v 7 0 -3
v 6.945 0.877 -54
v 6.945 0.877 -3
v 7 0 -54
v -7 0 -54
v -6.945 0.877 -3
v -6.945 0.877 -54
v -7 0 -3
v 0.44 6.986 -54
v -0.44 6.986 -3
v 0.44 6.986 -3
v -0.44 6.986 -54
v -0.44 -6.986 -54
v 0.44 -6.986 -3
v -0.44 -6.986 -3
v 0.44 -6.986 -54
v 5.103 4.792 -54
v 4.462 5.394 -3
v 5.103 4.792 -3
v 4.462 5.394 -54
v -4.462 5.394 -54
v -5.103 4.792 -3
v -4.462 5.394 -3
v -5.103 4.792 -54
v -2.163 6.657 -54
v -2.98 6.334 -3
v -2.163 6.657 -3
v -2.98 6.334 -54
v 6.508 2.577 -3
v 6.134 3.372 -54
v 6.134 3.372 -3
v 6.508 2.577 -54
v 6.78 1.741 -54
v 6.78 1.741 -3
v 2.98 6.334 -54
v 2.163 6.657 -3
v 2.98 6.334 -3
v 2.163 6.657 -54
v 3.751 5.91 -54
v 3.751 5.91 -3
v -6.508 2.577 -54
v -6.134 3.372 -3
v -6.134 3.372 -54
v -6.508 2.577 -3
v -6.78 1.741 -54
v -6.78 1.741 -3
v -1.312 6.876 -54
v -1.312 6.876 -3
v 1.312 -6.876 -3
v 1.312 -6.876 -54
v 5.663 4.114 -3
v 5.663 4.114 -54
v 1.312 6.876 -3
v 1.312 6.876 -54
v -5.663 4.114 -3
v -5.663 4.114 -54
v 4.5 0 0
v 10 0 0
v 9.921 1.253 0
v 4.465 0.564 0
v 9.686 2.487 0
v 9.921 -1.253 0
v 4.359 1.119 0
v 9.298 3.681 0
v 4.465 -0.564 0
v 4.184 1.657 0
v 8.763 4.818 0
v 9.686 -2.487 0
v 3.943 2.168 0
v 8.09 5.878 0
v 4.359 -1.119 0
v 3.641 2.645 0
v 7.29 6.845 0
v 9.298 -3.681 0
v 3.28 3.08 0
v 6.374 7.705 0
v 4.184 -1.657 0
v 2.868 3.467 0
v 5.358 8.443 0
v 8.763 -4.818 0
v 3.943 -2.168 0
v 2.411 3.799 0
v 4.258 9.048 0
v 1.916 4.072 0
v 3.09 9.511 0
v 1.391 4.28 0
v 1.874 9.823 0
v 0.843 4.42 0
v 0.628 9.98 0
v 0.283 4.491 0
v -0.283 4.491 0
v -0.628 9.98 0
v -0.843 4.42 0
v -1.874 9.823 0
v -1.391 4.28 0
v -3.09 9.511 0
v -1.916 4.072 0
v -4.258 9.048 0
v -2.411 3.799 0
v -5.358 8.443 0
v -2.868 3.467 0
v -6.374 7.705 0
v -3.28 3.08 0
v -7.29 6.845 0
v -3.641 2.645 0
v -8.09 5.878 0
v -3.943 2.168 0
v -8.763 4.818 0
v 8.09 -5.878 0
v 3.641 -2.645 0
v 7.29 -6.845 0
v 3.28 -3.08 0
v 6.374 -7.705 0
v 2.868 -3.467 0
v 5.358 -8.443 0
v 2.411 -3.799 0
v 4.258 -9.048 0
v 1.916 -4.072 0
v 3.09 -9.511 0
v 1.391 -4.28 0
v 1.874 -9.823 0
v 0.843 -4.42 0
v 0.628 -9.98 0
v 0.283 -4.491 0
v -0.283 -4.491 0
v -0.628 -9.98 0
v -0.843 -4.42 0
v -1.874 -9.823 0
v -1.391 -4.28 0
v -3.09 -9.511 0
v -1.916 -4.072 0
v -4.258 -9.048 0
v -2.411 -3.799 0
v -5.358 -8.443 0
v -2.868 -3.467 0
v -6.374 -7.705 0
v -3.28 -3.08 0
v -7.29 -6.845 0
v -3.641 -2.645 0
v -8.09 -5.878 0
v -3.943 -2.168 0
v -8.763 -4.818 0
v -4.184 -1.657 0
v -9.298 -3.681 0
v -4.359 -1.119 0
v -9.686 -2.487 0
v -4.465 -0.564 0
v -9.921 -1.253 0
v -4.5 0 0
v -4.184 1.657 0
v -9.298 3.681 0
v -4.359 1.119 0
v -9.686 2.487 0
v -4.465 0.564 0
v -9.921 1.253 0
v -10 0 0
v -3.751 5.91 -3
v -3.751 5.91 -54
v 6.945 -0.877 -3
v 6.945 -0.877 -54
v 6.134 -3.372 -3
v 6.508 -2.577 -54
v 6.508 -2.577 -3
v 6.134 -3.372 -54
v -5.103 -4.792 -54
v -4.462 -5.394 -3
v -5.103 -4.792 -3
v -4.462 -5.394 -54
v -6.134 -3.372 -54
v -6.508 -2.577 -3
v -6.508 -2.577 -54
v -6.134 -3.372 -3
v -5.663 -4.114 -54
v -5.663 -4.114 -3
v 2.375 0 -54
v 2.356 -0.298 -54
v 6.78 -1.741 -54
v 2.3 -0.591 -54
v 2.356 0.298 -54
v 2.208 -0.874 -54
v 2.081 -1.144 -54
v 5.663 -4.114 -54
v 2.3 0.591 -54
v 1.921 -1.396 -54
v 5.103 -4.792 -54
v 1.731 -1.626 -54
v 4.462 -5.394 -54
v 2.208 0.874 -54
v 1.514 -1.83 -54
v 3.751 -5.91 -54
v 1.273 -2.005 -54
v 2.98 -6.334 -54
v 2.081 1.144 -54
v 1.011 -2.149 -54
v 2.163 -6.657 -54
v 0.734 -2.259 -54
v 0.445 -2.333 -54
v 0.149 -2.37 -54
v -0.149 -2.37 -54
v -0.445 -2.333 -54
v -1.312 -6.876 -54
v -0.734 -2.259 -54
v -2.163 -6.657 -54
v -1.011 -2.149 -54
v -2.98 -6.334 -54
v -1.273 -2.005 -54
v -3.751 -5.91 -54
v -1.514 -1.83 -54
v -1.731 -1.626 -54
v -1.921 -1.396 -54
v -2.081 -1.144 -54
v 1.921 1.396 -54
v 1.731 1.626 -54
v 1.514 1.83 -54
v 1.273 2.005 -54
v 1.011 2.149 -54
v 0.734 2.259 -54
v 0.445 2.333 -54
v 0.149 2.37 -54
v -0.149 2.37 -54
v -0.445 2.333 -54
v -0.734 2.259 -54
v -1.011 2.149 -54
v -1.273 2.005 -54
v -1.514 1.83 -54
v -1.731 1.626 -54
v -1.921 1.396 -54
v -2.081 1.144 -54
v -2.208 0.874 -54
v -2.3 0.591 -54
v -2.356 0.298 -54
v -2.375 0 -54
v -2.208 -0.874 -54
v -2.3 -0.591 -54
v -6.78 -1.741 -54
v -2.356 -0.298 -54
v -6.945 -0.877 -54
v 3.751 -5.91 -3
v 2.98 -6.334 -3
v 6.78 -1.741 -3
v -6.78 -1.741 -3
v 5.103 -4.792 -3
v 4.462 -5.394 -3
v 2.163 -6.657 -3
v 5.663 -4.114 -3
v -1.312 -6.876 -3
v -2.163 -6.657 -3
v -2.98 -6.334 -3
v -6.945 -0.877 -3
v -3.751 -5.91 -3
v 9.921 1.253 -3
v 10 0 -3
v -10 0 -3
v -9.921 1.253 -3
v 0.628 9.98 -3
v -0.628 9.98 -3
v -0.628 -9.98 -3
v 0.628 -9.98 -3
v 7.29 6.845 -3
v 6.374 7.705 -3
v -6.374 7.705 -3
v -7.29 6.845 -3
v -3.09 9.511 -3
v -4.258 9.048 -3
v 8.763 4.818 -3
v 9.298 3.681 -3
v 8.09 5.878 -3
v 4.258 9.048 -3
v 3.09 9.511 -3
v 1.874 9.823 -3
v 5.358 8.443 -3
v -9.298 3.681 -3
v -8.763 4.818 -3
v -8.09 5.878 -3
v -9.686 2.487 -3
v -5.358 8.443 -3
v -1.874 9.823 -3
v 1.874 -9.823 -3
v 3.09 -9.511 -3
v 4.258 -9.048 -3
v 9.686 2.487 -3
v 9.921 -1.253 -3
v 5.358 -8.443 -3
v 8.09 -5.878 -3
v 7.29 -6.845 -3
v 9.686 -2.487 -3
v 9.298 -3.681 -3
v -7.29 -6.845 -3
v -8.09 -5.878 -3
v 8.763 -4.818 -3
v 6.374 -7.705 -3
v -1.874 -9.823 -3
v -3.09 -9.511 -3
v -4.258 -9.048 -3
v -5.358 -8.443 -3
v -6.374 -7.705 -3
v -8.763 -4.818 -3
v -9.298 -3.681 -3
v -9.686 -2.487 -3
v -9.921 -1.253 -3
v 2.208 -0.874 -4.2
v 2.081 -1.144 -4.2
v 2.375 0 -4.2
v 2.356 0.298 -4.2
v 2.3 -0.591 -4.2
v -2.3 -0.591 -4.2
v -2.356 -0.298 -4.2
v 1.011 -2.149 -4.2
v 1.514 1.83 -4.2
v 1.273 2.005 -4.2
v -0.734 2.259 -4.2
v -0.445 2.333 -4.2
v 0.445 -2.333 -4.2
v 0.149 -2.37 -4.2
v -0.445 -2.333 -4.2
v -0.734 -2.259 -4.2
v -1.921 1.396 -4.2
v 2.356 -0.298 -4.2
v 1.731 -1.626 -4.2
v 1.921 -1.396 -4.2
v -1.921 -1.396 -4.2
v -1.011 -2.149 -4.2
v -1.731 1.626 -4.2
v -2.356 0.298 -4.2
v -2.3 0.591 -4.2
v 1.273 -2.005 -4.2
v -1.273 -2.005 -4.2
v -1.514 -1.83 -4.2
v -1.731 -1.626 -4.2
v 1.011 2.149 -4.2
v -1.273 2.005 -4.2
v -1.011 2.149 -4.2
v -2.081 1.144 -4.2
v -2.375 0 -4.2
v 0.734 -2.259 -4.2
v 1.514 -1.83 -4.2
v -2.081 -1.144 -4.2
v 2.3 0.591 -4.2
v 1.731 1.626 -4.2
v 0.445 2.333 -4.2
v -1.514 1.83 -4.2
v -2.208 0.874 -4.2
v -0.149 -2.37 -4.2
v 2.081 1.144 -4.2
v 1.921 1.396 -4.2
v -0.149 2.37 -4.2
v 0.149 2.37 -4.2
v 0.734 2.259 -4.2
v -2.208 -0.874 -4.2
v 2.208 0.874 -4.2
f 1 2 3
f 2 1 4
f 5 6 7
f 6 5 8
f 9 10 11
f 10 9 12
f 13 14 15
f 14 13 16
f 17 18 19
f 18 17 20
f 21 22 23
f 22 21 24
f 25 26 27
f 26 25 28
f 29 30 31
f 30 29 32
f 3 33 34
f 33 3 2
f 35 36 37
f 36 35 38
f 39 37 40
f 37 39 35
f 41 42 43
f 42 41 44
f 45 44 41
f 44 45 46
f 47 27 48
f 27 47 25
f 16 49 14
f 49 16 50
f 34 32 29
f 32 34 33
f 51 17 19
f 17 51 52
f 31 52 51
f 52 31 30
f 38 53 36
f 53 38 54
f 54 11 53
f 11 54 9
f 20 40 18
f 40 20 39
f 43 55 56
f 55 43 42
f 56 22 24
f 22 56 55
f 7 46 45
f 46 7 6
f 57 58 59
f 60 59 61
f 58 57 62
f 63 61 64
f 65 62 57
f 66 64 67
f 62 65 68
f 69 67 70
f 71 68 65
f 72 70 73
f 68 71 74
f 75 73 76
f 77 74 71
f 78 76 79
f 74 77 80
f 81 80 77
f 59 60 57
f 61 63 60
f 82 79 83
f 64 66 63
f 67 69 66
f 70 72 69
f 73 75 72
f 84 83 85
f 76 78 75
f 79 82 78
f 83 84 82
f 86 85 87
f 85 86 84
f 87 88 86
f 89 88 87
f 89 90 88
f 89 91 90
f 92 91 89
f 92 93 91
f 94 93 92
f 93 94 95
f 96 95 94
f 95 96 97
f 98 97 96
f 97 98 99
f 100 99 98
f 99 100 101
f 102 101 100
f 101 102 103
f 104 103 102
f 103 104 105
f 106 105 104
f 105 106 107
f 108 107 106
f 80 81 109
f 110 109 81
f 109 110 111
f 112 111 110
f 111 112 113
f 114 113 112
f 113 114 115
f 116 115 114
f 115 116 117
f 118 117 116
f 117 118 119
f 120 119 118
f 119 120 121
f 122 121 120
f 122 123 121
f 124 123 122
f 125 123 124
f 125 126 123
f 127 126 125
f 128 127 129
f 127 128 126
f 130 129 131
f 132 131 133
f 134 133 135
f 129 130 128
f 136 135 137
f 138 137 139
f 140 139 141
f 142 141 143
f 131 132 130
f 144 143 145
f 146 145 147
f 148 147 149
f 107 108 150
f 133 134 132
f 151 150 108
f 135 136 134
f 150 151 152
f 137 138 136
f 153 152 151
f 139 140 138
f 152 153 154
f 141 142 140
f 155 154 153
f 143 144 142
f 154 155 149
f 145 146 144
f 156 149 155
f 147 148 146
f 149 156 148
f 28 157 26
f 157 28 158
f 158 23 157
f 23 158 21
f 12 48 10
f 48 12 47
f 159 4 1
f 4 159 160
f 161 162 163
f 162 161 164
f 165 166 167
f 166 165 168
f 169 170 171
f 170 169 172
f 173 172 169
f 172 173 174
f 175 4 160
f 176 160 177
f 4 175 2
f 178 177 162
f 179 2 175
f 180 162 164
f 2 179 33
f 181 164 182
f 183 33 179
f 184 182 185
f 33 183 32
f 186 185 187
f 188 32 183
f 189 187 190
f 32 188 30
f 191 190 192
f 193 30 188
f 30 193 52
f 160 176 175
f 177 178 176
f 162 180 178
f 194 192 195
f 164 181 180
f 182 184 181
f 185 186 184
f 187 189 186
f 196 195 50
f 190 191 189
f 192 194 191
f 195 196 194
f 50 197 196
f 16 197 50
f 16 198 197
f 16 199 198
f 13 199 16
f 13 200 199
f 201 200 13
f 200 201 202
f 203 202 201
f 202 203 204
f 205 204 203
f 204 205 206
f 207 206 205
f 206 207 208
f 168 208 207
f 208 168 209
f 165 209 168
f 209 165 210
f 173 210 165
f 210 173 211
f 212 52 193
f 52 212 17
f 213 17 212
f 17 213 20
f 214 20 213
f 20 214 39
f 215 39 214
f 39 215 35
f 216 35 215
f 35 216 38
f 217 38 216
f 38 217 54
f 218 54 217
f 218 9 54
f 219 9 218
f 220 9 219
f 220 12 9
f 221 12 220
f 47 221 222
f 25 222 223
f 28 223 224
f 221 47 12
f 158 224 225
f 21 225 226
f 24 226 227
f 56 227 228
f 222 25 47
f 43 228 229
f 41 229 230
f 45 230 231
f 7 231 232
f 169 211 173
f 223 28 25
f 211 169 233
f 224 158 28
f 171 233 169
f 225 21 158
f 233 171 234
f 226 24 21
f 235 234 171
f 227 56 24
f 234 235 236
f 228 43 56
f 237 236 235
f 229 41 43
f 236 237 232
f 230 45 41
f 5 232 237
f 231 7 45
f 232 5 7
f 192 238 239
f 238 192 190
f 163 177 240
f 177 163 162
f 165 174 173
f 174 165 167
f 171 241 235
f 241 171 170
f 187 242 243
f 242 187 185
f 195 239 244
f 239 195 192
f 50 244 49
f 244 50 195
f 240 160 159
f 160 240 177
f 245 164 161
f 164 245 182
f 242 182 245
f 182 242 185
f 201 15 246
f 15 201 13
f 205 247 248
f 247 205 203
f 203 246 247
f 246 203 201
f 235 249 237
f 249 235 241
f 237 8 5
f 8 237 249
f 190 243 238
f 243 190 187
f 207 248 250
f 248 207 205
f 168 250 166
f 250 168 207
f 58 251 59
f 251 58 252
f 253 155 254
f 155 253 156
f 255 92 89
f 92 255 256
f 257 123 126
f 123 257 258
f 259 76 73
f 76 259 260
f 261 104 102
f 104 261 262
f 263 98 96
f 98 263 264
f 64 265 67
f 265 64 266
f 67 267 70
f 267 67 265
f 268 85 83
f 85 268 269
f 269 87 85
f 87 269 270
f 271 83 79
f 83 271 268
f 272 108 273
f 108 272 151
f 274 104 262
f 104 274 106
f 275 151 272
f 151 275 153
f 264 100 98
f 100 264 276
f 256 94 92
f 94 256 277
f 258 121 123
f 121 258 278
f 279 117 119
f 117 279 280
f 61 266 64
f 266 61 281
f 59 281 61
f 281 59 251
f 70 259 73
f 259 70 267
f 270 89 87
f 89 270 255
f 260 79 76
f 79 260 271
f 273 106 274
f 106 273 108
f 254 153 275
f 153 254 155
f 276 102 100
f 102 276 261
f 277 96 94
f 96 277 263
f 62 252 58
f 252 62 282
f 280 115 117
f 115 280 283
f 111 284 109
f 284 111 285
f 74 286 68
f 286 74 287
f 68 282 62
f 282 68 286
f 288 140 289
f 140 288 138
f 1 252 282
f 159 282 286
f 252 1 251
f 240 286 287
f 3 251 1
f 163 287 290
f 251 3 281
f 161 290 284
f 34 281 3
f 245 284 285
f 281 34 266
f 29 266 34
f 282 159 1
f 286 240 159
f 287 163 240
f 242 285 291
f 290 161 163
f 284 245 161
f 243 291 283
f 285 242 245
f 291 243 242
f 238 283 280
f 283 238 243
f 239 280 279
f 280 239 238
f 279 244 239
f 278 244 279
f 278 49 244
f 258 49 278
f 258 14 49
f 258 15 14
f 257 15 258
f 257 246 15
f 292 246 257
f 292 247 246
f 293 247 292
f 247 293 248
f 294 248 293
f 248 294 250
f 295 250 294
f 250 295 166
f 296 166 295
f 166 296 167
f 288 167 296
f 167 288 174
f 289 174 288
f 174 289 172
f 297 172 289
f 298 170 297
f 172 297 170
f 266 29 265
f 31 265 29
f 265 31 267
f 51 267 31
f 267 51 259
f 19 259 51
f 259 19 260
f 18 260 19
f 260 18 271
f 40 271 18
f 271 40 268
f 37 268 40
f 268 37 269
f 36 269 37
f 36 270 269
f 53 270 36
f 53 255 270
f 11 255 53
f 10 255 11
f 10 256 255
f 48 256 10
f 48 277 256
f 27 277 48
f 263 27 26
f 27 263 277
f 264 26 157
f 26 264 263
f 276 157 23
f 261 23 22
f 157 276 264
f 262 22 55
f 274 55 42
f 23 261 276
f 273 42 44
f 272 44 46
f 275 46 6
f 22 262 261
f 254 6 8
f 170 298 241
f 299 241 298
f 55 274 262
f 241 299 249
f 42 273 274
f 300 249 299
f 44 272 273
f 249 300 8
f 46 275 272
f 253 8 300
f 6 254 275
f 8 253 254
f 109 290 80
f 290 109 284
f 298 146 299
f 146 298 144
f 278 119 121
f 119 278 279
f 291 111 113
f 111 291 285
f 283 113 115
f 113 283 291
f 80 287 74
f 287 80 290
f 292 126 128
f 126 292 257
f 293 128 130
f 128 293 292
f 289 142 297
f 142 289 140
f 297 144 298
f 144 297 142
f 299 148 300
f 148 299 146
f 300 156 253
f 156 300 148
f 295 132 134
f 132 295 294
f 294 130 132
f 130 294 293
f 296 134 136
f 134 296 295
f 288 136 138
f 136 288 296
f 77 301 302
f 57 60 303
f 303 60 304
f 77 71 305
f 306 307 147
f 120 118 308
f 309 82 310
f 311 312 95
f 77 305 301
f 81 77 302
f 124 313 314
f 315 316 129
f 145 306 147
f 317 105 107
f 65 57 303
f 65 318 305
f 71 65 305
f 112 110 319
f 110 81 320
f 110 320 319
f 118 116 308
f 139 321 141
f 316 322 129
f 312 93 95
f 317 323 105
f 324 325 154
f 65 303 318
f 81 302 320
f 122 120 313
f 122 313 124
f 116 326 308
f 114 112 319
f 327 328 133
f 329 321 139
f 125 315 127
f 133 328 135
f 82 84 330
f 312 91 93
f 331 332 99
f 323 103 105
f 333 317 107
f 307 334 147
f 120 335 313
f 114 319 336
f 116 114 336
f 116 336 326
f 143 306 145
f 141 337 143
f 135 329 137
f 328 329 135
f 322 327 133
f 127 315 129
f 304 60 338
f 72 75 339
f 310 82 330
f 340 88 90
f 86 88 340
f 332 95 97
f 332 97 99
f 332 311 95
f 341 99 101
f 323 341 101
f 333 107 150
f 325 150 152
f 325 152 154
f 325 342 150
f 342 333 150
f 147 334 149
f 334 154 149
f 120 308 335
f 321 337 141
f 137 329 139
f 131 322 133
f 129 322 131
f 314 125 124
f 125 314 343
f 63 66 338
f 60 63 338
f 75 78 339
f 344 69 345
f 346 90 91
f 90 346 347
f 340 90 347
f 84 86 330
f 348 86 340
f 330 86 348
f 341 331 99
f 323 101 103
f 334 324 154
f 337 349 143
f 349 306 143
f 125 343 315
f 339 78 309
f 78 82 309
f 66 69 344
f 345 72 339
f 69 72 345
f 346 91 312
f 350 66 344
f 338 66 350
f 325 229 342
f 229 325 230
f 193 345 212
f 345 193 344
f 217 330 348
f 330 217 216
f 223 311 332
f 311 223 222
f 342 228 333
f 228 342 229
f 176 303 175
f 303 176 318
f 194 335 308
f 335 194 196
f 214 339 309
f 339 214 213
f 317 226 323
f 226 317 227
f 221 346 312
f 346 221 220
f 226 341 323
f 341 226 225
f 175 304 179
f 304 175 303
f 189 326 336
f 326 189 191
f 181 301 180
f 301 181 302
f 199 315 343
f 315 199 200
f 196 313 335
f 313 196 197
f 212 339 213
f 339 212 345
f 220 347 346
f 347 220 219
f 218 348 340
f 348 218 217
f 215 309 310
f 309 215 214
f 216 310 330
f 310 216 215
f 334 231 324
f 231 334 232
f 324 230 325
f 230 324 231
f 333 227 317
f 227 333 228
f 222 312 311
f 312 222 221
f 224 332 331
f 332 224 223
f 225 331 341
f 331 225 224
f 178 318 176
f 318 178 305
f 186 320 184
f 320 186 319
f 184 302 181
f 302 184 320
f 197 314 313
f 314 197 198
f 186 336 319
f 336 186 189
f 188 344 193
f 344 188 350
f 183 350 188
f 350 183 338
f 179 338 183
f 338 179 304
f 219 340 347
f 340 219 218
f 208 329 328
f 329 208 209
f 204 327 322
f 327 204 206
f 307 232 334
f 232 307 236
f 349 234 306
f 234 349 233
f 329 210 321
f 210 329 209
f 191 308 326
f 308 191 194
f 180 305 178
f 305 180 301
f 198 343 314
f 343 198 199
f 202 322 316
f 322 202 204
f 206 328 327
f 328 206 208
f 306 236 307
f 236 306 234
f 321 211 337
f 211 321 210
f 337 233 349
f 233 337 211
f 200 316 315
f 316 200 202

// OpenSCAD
$fn = 50;


difference() {
	union() {
		translate(v = [0, 0, -54.0000000000]) {
			cylinder(h = 54, r = 7.0000000000);
		}
		translate(v = [0, 0, -3.0000000000]) {
			cylinder(h = 3, r = 10.0000000000);
		}
	}
	union() {
		translate(v = [0, 0, 0]) {
			rotate(a = [0, 0, 0]) {
				difference() {
					union() {
						#translate(v = [0, 0, -54.0000000000]) {
							cylinder(h = 54, r = 2.2500000000);
						}
						#translate(v = [0, 0, -4.2000000000]) {
							cylinder(h = 4.2000000000, r = 7.0000000000, r1 = 2.3750000000, r2 = 4.5000000000);
						}
						#translate(v = [0, 0, -54.0000000000]) {
							cylinder(h = 54, r = 2.3750000000);
						}
						#translate(v = [0, 0, -54.0000000000]) {
							cylinder(h = 54, r = 2.2500000000);
						}
					}
					union();
				}
			}
		}
	}
}
